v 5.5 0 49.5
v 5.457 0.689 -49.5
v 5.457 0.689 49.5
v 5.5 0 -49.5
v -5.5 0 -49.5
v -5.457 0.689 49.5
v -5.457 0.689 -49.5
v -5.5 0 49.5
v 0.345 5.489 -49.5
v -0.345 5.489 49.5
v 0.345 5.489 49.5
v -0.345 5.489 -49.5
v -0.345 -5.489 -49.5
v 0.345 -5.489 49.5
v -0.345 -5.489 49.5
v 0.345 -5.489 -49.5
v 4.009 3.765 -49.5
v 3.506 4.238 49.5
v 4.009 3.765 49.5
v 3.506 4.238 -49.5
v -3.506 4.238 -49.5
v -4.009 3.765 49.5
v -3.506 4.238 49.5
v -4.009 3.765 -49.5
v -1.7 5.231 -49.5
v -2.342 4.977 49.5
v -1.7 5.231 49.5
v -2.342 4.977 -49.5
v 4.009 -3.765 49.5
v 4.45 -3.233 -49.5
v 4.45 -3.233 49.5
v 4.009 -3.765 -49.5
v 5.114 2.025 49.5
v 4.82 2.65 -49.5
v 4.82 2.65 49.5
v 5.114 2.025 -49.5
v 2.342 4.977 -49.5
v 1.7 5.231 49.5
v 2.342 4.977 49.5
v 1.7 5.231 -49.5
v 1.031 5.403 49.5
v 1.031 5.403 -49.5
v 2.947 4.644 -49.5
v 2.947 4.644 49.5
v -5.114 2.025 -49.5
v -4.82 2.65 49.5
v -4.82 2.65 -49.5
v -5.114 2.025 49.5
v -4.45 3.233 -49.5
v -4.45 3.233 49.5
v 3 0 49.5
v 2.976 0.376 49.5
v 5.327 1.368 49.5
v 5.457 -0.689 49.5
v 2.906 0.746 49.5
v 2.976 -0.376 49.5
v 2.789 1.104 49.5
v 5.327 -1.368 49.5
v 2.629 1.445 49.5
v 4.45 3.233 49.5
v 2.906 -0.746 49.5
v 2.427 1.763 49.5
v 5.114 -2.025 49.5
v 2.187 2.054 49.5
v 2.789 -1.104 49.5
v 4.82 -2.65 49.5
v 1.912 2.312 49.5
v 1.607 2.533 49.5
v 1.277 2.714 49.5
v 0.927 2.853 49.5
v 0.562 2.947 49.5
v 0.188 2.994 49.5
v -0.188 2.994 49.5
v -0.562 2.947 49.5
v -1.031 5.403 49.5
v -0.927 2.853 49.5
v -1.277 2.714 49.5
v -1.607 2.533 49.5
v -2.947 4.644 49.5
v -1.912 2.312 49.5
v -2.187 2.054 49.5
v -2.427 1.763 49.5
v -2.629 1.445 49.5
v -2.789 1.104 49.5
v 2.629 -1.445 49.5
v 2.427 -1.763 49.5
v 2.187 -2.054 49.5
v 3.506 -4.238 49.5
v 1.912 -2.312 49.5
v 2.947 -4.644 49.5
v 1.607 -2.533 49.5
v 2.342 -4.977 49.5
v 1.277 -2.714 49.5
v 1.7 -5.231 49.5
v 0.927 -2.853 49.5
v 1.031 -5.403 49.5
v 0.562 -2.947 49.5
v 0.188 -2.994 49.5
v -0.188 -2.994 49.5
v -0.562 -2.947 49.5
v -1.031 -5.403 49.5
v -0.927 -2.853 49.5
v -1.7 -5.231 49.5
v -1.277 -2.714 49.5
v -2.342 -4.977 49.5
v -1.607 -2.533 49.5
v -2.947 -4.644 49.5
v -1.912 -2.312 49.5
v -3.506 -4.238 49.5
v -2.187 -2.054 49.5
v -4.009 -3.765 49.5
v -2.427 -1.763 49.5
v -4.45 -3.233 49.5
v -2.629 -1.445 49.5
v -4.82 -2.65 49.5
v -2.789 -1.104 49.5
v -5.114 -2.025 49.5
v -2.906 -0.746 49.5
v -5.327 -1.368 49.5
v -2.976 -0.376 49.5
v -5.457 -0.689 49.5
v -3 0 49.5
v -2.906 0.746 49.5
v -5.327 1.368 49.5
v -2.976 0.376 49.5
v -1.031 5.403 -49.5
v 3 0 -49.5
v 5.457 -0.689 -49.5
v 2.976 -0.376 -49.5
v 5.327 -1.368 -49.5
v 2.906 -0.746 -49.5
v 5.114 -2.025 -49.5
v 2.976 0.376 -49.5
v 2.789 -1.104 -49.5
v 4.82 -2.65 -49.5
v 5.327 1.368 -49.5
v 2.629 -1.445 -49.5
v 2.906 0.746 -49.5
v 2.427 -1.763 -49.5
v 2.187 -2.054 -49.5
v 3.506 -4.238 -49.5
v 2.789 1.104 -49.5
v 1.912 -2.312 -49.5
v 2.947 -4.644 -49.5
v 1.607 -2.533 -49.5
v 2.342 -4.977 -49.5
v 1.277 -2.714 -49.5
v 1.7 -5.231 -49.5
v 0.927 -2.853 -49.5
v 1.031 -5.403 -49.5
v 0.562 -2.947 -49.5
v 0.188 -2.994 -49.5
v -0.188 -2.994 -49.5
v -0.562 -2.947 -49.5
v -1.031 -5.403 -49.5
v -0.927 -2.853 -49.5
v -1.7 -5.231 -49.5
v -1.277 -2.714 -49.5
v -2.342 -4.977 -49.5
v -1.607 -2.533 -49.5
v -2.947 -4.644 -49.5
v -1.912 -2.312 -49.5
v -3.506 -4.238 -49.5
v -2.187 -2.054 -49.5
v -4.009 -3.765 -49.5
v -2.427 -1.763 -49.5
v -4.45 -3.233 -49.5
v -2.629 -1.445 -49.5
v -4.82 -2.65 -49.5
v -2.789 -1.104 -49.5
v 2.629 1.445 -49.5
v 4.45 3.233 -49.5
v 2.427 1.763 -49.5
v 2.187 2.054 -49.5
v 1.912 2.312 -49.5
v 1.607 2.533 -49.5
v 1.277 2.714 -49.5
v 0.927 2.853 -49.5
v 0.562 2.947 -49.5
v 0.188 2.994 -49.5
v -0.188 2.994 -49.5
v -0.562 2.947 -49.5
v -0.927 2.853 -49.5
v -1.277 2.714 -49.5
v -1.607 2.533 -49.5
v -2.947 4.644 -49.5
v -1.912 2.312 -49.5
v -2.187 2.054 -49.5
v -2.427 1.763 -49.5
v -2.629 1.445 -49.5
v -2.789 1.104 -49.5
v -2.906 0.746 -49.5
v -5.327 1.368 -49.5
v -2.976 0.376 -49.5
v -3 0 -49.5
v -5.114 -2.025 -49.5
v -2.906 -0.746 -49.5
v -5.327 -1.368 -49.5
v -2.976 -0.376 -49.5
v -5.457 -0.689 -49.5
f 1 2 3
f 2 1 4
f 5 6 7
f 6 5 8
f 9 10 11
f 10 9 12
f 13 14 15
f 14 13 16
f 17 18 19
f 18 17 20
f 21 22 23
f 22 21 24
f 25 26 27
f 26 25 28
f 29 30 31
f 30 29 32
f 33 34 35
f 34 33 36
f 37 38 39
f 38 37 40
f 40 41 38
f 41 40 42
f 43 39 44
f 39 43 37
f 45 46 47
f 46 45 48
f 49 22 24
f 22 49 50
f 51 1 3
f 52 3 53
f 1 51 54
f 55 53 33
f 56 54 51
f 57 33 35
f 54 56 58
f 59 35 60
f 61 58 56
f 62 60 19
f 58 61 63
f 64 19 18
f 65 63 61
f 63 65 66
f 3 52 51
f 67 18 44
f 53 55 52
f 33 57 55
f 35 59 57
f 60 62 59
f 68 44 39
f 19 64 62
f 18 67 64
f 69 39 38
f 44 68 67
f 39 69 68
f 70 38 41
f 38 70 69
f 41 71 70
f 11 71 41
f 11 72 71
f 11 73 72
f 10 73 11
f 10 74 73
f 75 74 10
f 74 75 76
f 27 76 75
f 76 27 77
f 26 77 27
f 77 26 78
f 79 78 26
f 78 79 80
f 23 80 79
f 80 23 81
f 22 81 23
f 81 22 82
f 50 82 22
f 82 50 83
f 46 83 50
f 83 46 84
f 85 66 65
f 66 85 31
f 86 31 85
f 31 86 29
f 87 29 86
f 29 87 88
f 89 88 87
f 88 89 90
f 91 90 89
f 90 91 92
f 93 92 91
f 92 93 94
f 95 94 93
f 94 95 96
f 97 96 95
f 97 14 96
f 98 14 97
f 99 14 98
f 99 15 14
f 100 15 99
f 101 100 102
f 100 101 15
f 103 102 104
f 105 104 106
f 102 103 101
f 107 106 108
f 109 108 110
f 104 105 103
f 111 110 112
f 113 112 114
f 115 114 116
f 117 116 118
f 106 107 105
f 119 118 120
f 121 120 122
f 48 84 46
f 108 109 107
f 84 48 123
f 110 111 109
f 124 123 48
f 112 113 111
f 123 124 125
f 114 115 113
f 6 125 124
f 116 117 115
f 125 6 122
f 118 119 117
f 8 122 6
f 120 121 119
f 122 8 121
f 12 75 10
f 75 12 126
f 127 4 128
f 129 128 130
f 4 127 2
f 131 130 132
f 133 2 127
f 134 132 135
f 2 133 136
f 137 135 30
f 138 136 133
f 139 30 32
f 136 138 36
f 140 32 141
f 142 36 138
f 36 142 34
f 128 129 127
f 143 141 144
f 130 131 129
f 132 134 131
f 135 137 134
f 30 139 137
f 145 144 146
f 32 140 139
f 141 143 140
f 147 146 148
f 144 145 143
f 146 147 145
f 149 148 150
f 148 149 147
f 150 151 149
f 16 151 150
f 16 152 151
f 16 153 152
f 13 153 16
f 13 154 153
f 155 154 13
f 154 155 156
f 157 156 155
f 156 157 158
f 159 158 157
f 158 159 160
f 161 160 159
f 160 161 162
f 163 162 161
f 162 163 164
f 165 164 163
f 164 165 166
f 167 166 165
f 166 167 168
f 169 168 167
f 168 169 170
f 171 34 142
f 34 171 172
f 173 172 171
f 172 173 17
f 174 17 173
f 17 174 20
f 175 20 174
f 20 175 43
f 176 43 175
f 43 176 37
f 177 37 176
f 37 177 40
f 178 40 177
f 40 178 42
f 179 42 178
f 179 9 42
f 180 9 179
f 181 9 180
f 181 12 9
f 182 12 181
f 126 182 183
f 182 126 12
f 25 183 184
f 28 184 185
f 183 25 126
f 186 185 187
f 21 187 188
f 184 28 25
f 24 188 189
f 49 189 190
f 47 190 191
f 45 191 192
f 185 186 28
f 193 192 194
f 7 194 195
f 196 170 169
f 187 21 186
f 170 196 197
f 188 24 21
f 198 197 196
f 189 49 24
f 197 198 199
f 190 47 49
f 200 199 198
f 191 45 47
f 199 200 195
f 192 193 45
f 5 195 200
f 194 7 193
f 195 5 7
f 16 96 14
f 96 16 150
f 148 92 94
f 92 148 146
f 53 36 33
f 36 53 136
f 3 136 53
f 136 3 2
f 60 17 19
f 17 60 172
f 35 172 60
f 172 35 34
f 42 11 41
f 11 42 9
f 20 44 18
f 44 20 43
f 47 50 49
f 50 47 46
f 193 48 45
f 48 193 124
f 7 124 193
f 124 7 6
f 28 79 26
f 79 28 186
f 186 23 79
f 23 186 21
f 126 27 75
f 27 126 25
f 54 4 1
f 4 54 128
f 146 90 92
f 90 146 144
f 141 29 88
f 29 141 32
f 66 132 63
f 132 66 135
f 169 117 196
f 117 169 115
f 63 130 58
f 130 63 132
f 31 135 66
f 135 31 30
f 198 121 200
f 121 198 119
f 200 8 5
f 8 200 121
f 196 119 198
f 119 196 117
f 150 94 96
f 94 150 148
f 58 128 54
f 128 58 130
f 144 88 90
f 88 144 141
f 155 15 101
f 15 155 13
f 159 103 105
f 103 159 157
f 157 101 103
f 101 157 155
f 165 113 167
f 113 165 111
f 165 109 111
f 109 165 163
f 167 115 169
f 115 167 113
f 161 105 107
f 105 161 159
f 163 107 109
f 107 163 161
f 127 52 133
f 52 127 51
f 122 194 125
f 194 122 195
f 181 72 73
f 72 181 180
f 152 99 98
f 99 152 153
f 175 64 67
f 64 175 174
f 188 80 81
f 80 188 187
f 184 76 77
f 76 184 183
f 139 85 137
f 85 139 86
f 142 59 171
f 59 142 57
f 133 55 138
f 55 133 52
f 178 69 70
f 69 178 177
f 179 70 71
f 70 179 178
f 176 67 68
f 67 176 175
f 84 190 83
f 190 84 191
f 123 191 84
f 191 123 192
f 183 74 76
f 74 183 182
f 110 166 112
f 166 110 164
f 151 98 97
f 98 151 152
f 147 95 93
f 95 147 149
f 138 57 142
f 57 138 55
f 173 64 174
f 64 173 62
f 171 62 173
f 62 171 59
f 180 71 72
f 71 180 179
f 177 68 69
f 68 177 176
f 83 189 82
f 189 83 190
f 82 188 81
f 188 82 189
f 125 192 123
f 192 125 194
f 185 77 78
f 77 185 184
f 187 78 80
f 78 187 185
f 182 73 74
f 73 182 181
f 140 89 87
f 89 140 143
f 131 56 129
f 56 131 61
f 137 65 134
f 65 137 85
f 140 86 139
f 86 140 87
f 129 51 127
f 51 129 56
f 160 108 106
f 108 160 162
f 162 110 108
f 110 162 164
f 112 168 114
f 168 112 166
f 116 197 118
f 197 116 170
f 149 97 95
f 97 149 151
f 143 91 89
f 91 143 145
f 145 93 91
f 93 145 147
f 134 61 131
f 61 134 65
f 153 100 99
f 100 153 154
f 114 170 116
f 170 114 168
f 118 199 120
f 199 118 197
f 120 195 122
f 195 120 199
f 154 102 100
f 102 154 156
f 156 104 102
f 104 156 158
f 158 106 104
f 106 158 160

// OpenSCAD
$fn = 50;


difference() {
	union() {
		translate(v = [0, 0, -49.5000000000]) {
			cylinder(h = 99, r = 5.5000000000);
		}
	}
	union() {
		translate(v = [0, 0, -100.0000000000]) {
			cylinder(h = 200, r = 3);
		}
	}
}
